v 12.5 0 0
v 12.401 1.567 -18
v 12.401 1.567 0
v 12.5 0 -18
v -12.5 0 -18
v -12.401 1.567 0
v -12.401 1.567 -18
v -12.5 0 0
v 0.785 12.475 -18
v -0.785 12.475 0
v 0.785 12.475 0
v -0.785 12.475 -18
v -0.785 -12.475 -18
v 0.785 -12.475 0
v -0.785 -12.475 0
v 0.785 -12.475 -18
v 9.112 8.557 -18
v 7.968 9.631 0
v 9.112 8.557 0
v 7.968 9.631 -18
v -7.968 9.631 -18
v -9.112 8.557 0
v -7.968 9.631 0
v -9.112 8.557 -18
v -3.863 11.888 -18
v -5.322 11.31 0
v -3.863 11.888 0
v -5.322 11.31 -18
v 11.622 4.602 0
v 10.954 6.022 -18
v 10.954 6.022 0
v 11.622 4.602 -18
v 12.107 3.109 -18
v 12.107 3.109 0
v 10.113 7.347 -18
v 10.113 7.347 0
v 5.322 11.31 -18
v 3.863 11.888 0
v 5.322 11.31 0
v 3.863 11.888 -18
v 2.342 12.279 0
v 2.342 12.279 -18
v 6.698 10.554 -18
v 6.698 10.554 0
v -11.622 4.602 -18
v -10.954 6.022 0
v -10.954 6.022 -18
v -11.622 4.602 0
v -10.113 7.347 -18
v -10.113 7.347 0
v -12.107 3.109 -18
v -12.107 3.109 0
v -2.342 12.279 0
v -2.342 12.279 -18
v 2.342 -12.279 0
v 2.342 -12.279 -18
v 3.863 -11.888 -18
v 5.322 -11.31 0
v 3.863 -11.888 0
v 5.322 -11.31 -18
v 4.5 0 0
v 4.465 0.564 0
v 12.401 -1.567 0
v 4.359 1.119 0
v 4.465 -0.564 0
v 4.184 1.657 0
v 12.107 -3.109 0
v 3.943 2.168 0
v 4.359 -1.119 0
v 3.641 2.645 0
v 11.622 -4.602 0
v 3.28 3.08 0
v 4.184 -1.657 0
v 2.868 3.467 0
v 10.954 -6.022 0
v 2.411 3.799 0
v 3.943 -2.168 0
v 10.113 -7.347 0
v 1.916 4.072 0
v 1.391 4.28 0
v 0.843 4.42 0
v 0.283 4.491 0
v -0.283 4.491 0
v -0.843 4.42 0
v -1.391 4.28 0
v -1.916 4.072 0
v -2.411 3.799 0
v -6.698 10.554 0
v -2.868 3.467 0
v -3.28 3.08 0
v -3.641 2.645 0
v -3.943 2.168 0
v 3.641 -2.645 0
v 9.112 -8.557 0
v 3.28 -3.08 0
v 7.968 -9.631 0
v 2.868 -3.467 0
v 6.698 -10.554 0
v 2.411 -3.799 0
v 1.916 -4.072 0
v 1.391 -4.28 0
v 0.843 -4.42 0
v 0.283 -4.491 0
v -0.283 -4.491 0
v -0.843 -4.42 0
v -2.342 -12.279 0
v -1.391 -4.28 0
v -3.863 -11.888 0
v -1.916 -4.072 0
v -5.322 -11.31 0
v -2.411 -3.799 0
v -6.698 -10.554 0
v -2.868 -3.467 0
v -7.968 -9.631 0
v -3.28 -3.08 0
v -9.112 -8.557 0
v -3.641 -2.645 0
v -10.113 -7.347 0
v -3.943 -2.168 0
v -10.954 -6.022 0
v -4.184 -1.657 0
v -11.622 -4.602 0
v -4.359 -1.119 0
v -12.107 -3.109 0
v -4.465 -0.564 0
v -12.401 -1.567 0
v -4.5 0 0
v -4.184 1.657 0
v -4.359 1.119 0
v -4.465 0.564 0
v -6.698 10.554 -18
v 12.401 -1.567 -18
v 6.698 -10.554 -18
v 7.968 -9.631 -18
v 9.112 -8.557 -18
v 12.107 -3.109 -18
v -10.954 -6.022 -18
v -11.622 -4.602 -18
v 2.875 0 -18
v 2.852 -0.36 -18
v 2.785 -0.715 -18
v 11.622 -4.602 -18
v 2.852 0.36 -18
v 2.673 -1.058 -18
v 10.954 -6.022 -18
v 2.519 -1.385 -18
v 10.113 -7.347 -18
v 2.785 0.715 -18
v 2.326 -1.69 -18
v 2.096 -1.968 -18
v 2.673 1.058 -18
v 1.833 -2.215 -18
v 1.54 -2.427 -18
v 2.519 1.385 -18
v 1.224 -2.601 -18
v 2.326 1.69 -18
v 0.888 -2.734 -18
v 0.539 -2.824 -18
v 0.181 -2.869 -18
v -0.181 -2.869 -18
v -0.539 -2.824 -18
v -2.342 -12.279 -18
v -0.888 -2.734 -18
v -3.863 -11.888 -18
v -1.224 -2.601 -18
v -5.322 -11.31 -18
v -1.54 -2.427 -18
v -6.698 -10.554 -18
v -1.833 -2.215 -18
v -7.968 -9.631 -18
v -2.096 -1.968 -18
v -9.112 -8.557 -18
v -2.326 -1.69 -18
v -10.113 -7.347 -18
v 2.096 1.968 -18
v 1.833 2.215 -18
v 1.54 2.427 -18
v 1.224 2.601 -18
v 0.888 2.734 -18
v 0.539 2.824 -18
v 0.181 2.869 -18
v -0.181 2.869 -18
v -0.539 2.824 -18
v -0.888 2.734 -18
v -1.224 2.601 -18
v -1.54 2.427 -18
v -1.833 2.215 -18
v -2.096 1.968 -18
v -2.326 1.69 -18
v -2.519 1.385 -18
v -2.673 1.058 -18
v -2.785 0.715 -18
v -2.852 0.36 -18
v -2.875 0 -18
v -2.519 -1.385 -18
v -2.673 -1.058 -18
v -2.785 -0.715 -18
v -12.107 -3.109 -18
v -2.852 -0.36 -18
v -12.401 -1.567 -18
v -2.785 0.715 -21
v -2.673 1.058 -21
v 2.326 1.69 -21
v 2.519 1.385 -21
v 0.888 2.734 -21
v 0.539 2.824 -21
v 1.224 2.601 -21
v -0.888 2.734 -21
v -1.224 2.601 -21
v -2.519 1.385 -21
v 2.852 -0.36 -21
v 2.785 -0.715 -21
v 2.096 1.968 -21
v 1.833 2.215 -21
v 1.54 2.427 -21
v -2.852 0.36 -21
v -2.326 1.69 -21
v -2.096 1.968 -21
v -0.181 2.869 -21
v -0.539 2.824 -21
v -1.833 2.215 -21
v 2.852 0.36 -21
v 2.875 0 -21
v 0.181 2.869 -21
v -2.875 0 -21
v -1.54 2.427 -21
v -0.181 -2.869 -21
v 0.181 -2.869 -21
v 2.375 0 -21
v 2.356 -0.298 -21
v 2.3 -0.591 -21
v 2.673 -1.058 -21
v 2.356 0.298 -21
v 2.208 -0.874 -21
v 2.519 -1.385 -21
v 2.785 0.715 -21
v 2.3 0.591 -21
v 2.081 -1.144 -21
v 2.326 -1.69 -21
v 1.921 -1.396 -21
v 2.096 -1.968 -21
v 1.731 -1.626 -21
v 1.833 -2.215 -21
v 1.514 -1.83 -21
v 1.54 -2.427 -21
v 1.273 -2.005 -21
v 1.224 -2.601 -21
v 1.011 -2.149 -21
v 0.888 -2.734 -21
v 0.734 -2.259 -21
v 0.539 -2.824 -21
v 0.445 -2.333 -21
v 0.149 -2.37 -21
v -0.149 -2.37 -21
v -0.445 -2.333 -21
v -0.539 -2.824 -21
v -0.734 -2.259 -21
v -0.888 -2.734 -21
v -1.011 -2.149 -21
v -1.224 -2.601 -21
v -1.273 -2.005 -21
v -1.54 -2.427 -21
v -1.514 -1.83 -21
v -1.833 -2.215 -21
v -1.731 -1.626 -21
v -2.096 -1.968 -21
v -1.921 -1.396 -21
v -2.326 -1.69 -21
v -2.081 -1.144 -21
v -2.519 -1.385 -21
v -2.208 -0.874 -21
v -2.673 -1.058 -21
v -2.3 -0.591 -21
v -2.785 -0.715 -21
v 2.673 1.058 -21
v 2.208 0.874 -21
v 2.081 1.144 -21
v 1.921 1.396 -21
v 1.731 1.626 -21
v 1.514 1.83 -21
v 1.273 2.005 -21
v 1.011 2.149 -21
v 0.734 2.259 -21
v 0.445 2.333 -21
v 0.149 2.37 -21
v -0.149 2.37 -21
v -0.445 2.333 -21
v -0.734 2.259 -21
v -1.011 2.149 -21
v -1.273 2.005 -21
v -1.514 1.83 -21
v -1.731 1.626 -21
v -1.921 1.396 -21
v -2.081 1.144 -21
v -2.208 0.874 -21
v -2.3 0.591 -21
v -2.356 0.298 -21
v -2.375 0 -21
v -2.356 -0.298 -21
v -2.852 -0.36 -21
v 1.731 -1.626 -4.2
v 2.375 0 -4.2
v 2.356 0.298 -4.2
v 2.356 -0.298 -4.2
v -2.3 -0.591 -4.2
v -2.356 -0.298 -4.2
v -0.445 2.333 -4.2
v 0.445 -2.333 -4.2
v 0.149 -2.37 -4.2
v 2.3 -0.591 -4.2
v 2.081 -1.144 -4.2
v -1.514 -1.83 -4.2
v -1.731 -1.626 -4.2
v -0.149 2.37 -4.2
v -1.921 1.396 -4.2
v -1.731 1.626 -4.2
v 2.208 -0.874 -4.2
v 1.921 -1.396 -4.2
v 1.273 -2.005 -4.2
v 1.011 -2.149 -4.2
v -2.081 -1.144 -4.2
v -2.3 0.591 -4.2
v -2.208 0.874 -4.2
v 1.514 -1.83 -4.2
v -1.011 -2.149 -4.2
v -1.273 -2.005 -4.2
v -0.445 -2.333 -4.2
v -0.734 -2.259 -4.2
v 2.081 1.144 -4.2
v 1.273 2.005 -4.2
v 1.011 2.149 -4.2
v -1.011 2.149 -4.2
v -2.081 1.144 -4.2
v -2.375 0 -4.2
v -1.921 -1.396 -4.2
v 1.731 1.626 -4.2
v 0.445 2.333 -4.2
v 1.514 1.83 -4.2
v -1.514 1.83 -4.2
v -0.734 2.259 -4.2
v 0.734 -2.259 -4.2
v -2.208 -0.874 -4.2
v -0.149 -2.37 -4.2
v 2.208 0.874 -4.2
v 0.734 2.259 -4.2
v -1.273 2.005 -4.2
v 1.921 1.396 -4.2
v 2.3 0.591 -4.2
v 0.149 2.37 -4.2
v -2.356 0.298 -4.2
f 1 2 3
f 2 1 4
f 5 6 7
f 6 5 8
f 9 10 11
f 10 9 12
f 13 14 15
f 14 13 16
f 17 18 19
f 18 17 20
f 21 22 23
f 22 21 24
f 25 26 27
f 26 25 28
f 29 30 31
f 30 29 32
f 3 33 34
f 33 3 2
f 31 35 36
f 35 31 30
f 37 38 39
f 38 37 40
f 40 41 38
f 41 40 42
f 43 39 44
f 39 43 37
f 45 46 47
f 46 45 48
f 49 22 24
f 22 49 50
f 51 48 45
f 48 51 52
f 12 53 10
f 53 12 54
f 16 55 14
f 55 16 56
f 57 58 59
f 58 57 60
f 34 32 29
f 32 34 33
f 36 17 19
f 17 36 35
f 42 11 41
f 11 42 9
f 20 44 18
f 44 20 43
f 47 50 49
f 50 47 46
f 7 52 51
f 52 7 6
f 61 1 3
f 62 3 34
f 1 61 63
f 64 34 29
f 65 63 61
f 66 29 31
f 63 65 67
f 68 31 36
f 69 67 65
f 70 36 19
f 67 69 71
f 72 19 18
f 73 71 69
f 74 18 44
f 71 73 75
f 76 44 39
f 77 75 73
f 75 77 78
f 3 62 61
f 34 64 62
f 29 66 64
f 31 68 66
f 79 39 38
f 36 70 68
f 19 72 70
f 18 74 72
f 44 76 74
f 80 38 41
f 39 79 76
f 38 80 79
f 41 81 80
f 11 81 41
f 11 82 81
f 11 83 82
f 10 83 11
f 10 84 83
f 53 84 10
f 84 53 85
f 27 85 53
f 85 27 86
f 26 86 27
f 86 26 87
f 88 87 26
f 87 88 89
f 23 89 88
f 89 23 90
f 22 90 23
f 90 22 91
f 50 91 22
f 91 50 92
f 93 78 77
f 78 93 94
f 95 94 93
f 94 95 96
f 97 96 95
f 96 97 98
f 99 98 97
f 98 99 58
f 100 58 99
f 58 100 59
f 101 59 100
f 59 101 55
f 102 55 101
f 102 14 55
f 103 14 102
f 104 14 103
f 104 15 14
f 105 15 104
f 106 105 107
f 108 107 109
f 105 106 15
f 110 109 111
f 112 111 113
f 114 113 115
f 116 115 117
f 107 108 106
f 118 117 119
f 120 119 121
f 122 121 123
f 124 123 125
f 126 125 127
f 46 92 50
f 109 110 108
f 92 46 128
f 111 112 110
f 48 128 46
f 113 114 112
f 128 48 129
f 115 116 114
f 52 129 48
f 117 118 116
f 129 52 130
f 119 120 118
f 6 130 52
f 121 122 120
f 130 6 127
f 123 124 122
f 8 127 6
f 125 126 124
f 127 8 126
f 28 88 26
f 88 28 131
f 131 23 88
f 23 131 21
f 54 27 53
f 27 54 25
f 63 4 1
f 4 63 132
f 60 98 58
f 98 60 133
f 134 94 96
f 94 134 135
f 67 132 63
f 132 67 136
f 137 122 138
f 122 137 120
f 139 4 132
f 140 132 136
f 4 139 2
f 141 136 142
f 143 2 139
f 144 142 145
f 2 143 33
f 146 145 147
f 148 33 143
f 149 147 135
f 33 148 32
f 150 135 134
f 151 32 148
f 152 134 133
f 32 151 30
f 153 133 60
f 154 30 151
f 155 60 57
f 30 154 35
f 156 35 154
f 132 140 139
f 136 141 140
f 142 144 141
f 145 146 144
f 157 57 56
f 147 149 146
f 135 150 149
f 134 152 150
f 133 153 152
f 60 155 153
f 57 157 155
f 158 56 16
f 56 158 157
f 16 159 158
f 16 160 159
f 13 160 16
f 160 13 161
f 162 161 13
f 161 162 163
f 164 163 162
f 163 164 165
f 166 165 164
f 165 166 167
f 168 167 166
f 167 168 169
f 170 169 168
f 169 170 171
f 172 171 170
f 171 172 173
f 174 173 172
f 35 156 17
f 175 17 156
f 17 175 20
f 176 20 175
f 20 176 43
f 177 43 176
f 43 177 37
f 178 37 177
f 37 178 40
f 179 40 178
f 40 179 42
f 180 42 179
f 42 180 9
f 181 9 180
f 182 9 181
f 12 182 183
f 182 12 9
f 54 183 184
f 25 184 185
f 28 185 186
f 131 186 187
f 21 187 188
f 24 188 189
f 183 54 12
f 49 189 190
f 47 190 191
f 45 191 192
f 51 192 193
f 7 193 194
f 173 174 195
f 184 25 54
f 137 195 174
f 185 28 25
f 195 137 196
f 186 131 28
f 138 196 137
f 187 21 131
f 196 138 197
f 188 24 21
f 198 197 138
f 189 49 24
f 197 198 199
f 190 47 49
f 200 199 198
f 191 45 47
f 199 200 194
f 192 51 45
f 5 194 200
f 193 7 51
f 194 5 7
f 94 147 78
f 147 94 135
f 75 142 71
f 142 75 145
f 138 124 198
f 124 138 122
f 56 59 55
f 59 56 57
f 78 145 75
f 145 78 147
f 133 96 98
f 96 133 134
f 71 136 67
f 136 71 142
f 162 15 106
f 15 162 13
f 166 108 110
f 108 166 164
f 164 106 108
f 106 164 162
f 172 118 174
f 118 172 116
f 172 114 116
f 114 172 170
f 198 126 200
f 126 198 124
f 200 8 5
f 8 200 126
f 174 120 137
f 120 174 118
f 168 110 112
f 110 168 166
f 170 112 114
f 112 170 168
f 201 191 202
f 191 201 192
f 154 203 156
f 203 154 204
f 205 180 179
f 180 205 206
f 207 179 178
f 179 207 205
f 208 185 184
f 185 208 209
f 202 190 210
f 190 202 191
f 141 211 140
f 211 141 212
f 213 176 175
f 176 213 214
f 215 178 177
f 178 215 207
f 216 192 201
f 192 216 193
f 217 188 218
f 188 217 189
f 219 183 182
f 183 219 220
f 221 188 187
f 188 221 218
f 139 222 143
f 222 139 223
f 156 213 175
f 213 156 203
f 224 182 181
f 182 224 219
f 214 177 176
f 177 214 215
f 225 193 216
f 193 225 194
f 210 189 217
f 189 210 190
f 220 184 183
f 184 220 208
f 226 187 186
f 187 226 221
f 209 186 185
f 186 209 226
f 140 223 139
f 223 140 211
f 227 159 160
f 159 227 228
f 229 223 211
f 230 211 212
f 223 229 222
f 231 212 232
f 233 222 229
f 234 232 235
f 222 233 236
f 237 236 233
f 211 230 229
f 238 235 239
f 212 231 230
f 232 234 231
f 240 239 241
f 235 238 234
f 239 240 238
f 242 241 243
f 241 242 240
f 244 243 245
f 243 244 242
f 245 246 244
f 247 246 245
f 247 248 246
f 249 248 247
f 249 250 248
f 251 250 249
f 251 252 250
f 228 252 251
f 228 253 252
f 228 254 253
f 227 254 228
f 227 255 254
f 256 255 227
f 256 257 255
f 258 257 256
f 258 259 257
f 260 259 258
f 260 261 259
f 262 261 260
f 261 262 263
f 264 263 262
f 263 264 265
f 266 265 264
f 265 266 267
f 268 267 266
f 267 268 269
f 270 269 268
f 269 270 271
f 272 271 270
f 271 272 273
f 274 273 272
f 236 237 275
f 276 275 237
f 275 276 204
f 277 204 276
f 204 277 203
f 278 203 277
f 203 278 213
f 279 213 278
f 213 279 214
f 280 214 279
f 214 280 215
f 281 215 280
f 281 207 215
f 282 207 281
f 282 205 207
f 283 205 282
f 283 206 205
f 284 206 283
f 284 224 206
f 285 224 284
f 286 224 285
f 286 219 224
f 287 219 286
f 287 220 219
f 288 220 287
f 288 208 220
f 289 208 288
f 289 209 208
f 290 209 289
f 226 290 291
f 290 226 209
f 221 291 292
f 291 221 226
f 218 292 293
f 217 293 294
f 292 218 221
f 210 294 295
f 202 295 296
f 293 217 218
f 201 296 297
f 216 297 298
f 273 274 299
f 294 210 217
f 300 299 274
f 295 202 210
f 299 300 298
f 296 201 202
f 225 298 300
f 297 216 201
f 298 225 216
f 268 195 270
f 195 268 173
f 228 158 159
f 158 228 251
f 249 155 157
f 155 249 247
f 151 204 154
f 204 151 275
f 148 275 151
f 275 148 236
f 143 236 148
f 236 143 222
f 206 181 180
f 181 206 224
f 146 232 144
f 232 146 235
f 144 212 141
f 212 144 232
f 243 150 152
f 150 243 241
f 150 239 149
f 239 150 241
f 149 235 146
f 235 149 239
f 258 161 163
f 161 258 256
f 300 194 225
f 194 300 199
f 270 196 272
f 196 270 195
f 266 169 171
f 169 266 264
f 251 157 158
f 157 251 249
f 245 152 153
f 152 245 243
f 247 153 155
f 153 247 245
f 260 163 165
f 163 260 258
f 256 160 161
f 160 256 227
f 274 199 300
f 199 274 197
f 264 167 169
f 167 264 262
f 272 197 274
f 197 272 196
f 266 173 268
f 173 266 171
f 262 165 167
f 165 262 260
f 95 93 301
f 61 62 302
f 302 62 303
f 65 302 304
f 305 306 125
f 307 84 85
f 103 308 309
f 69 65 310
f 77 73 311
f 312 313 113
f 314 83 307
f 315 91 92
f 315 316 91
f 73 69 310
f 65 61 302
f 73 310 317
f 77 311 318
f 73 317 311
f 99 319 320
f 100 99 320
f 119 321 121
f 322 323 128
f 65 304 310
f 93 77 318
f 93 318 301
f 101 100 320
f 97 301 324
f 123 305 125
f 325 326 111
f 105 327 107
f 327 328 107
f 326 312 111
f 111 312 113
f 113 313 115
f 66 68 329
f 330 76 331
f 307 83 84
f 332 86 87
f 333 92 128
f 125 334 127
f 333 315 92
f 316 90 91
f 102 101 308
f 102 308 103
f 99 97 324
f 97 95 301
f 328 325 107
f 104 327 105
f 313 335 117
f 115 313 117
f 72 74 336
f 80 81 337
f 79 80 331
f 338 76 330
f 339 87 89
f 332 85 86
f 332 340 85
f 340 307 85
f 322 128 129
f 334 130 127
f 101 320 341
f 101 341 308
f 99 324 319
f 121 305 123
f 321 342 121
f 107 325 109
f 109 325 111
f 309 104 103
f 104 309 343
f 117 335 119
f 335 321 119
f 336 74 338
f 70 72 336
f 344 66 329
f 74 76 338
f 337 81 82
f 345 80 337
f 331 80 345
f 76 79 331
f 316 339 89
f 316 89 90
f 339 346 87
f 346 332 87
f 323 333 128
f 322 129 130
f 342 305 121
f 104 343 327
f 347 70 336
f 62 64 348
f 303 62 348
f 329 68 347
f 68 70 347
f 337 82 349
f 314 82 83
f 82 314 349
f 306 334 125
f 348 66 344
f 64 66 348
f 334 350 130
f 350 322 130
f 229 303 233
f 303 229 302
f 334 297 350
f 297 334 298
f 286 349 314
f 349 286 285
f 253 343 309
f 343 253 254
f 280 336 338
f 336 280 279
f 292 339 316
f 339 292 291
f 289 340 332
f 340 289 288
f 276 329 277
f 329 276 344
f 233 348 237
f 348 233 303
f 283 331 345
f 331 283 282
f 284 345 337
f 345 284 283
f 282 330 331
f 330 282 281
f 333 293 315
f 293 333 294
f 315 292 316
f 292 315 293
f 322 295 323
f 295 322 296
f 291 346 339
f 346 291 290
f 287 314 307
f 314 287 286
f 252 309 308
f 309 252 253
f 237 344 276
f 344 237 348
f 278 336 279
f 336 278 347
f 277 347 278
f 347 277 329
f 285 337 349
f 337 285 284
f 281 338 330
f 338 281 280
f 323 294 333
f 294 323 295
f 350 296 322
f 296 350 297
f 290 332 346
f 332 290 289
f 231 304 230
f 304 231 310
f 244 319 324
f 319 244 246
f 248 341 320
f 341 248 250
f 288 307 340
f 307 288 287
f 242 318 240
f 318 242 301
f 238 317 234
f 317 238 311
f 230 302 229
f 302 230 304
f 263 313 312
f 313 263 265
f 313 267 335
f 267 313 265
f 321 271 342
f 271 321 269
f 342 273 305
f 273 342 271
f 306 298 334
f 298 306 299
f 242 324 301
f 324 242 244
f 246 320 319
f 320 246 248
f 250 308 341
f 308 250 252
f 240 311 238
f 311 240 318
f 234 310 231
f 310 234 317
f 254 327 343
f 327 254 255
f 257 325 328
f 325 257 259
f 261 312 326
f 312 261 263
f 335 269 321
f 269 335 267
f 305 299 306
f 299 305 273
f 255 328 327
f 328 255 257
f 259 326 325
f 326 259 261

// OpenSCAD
$fn = 50;


difference() {
	union() {
		translate(v = [0, 0, -18.0000000000]) {
			cylinder(h = 18, r = 12.5000000000);
		}
		#translate(v = [0, 0, -21.0000000000]) {
			cylinder(h = 21, r = 2.8750000000);
		}
	}
	union() {
		translate(v = [0, 0, 0]) {
			rotate(a = [0, 0, 0]) {
				difference() {
					union() {
						translate(v = [0, 0, -21.0000000000]) {
							cylinder(h = 21, r = 2.2500000000);
						}
						translate(v = [0, 0, -4.2000000000]) {
							cylinder(h = 4.2000000000, r1 = 2.3750000000, r2 = 4.5000000000);
						}
						translate(v = [0, 0, -21.0000000000]) {
							cylinder(h = 21, r = 2.3750000000);
						}
						translate(v = [0, 0, -21.0000000000]) {
							cylinder(h = 21, r = 2.2500000000);
						}
					}
					union();
				}
			}
		}
	}
}
